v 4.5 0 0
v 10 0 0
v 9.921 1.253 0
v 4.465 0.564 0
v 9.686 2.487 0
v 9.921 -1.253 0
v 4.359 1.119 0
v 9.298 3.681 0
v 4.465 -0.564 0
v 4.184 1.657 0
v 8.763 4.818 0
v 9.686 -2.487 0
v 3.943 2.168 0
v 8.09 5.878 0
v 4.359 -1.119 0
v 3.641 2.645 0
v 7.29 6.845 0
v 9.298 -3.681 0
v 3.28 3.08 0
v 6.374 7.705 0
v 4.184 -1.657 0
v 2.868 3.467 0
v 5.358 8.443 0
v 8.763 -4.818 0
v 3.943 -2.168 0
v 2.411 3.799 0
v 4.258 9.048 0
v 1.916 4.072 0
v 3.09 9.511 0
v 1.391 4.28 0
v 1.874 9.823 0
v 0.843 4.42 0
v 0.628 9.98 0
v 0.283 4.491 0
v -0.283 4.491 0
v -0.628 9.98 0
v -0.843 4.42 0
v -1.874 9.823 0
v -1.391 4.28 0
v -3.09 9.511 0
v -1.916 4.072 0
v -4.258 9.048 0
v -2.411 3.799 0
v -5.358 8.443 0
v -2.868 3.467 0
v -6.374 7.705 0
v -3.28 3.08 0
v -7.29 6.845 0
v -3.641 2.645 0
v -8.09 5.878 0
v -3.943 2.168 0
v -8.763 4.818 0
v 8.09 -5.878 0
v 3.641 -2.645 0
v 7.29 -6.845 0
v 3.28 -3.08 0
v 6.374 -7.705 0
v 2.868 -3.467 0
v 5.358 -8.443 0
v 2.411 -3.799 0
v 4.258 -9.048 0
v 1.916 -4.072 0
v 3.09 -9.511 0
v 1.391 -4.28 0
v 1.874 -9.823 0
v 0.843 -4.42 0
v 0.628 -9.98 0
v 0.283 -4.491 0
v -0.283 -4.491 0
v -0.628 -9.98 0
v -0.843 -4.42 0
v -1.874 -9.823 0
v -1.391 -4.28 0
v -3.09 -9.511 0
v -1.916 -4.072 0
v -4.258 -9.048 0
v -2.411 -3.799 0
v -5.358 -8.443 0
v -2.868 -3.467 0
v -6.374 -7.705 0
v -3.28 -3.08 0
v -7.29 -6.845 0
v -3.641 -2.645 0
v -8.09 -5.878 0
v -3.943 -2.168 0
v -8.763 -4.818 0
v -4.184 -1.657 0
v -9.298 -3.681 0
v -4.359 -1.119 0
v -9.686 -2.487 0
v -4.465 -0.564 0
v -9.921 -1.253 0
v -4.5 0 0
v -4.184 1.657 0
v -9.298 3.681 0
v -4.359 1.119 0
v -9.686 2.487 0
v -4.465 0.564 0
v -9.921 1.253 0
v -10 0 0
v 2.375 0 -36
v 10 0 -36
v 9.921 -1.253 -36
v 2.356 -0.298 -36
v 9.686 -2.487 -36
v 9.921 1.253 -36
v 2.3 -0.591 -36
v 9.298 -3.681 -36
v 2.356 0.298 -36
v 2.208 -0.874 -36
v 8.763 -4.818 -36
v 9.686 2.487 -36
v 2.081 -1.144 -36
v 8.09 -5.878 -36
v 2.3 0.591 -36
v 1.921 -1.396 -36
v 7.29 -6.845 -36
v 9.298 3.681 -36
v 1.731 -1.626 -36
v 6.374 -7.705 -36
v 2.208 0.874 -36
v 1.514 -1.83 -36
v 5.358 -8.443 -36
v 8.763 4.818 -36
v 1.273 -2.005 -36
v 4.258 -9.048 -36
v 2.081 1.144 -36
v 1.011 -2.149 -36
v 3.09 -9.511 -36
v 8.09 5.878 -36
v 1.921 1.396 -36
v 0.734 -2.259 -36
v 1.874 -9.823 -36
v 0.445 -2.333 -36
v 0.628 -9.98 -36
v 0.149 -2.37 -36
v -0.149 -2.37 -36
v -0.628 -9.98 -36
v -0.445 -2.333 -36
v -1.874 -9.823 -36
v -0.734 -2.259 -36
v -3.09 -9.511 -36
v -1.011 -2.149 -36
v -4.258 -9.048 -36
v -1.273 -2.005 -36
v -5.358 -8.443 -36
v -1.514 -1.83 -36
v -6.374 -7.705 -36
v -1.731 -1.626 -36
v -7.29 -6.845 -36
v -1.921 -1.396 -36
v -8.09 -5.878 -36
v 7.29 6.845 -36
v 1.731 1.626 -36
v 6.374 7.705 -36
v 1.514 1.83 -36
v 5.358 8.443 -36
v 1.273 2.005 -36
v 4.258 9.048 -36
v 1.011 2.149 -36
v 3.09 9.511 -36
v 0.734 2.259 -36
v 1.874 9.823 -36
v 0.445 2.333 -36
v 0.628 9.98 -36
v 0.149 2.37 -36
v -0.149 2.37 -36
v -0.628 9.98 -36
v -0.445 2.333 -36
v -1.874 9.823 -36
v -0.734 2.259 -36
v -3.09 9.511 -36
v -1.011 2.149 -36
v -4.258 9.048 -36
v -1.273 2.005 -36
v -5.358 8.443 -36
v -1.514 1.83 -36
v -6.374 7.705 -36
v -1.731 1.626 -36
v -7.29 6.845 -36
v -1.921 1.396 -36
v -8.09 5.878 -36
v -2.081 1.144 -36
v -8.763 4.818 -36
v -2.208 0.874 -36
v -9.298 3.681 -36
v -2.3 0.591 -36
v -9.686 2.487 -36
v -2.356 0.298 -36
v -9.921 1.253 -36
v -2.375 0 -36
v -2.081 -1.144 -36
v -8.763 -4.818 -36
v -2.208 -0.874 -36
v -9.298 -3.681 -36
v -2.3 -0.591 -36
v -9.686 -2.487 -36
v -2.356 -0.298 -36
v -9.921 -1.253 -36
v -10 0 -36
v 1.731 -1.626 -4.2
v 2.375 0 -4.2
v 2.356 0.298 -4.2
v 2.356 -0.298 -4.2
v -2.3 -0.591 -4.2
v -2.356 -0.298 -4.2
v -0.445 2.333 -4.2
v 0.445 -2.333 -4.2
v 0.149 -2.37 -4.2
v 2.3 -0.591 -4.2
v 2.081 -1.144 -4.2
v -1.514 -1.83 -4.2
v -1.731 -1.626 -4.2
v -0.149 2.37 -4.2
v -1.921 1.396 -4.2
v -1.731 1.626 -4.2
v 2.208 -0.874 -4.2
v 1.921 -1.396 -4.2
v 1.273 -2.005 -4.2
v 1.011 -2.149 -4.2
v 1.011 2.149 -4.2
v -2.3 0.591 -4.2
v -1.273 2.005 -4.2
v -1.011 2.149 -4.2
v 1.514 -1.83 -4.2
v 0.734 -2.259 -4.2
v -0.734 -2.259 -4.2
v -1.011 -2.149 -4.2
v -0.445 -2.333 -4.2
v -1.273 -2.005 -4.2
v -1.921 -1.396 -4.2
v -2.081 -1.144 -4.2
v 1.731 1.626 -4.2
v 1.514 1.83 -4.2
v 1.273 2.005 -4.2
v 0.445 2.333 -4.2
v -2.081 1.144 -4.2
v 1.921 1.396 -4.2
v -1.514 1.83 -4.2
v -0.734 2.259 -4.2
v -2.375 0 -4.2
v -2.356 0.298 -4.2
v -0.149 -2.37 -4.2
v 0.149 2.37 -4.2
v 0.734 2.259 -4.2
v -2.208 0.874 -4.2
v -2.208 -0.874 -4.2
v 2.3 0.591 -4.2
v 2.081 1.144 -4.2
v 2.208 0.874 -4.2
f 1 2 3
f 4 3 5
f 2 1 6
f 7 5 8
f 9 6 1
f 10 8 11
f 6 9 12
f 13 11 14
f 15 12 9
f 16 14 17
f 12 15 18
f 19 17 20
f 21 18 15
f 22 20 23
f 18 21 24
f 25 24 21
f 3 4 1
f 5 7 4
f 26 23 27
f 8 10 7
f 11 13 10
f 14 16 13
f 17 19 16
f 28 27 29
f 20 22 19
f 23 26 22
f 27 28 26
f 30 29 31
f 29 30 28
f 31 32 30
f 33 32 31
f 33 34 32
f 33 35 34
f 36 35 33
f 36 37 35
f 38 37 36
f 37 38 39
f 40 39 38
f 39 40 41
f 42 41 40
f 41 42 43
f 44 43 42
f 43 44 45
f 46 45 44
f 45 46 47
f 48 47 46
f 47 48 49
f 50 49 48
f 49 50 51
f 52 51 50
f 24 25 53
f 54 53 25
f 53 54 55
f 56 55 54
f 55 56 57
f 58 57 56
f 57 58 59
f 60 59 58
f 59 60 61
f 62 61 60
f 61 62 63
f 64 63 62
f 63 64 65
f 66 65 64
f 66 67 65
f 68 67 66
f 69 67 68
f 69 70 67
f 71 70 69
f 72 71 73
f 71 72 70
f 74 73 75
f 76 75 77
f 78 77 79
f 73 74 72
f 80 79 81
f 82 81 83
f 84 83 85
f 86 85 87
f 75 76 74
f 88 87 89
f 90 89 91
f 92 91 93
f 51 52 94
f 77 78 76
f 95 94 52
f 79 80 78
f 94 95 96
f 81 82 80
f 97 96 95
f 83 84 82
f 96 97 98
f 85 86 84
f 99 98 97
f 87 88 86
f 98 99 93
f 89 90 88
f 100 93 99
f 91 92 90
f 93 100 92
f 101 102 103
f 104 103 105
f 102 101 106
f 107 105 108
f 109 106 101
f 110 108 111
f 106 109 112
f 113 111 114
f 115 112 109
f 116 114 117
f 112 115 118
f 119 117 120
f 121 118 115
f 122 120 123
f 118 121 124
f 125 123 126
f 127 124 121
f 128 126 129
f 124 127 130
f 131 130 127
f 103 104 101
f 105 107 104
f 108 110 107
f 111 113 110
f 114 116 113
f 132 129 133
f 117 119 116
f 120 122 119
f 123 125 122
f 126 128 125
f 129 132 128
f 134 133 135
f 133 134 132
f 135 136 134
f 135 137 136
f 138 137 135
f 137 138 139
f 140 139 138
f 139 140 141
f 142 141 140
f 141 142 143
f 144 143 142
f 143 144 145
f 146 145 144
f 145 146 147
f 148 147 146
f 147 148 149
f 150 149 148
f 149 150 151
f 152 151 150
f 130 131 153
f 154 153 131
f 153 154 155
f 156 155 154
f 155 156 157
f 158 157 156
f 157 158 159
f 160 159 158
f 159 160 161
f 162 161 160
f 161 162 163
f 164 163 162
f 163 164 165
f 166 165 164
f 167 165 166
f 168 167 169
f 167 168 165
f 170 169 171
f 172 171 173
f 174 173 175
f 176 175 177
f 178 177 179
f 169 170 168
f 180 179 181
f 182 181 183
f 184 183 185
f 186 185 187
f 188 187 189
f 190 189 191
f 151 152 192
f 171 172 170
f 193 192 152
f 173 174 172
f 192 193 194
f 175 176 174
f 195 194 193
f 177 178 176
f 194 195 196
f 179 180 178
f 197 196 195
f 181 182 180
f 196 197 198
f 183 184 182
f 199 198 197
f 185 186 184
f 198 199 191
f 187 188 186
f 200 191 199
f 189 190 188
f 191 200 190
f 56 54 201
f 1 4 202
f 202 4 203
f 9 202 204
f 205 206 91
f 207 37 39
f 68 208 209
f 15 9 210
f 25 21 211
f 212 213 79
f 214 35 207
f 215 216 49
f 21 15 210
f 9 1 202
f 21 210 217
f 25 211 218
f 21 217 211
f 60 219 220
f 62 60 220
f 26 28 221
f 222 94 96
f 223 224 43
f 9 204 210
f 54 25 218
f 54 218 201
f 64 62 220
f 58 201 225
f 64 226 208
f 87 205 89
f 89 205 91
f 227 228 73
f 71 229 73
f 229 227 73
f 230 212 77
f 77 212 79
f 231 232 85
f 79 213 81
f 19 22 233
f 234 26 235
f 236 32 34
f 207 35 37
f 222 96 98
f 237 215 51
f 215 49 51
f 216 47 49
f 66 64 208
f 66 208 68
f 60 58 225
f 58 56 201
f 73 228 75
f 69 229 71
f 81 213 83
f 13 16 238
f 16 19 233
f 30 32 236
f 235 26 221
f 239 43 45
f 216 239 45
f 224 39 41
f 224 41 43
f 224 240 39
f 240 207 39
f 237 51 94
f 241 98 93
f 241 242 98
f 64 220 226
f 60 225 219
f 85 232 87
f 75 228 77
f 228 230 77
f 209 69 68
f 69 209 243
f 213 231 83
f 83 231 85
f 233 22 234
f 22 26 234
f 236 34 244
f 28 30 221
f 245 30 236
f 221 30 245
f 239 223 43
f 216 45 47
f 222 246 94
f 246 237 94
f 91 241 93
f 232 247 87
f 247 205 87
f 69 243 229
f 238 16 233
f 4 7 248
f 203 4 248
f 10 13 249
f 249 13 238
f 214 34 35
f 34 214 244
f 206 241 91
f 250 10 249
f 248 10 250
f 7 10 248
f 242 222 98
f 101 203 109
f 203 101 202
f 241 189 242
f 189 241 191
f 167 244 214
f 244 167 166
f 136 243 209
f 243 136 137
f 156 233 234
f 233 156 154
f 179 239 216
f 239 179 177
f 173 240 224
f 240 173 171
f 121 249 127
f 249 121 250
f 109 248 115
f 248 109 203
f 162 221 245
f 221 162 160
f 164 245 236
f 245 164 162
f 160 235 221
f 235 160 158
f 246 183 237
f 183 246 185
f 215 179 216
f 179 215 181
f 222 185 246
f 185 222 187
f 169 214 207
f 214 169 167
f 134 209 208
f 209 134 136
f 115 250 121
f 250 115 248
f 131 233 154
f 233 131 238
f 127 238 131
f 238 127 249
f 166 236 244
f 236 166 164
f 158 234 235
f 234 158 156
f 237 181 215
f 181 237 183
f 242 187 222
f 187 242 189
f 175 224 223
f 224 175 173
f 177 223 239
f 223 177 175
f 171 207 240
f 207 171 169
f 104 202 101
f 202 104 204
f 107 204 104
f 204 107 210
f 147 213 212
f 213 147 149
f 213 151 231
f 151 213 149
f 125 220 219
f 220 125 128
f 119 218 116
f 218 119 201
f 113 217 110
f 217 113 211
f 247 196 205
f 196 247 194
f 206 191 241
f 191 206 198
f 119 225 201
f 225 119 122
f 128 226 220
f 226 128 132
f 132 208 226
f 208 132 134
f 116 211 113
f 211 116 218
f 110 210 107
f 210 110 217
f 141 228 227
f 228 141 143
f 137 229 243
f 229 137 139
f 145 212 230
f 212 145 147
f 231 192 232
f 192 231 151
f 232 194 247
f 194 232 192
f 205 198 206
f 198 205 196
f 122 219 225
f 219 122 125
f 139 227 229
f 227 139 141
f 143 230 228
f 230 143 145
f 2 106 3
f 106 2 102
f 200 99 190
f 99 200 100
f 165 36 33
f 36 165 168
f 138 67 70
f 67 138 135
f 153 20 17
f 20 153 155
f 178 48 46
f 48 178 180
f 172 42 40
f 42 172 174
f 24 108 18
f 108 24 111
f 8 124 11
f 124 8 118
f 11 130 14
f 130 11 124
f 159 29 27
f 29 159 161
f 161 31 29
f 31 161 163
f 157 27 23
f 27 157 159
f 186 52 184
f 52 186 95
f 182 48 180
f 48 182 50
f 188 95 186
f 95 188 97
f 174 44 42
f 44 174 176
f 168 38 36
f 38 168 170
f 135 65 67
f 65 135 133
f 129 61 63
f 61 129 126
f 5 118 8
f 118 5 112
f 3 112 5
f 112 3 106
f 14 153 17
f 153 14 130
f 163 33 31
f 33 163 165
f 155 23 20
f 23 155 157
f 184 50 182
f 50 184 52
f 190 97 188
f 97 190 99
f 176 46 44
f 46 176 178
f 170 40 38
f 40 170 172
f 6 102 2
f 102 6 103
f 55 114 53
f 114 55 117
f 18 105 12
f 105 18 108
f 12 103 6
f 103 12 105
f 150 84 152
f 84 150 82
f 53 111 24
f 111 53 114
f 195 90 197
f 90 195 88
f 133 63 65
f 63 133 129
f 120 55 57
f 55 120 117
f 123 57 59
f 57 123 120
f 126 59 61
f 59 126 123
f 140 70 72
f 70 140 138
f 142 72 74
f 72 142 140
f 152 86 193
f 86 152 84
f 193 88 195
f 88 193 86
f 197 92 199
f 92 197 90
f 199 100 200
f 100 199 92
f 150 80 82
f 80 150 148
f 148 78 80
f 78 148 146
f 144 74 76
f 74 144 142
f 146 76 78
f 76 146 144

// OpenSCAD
$fn = 50;


difference() {
	union() {
		translate(v = [0, 0, -36.0000000000]) {
			cylinder(h = 36, r = 10.0000000000);
		}
		cylinder(h = 0, r = 19.0000000000);
	}
	union() {
		translate(v = [0, 0, 0]) {
			rotate(a = [0, 0, 0]) {
				difference() {
					union() {
						#translate(v = [0, 0, -36.0000000000]) {
							cylinder(h = 36, r = 2.2500000000);
						}
						#translate(v = [0, 0, -4.2000000000]) {
							cylinder(h = 4.2000000000, r = 10.0000000000, r1 = 2.3750000000, r2 = 4.5000000000);
						}
						#translate(v = [0, 0, -36.0000000000]) {
							cylinder(h = 36, r = 2.3750000000);
						}
						#translate(v = [0, 0, -36.0000000000]) {
							cylinder(h = 36, r = 2.2500000000);
						}
					}
					union();
				}
			}
		}
	}
}
